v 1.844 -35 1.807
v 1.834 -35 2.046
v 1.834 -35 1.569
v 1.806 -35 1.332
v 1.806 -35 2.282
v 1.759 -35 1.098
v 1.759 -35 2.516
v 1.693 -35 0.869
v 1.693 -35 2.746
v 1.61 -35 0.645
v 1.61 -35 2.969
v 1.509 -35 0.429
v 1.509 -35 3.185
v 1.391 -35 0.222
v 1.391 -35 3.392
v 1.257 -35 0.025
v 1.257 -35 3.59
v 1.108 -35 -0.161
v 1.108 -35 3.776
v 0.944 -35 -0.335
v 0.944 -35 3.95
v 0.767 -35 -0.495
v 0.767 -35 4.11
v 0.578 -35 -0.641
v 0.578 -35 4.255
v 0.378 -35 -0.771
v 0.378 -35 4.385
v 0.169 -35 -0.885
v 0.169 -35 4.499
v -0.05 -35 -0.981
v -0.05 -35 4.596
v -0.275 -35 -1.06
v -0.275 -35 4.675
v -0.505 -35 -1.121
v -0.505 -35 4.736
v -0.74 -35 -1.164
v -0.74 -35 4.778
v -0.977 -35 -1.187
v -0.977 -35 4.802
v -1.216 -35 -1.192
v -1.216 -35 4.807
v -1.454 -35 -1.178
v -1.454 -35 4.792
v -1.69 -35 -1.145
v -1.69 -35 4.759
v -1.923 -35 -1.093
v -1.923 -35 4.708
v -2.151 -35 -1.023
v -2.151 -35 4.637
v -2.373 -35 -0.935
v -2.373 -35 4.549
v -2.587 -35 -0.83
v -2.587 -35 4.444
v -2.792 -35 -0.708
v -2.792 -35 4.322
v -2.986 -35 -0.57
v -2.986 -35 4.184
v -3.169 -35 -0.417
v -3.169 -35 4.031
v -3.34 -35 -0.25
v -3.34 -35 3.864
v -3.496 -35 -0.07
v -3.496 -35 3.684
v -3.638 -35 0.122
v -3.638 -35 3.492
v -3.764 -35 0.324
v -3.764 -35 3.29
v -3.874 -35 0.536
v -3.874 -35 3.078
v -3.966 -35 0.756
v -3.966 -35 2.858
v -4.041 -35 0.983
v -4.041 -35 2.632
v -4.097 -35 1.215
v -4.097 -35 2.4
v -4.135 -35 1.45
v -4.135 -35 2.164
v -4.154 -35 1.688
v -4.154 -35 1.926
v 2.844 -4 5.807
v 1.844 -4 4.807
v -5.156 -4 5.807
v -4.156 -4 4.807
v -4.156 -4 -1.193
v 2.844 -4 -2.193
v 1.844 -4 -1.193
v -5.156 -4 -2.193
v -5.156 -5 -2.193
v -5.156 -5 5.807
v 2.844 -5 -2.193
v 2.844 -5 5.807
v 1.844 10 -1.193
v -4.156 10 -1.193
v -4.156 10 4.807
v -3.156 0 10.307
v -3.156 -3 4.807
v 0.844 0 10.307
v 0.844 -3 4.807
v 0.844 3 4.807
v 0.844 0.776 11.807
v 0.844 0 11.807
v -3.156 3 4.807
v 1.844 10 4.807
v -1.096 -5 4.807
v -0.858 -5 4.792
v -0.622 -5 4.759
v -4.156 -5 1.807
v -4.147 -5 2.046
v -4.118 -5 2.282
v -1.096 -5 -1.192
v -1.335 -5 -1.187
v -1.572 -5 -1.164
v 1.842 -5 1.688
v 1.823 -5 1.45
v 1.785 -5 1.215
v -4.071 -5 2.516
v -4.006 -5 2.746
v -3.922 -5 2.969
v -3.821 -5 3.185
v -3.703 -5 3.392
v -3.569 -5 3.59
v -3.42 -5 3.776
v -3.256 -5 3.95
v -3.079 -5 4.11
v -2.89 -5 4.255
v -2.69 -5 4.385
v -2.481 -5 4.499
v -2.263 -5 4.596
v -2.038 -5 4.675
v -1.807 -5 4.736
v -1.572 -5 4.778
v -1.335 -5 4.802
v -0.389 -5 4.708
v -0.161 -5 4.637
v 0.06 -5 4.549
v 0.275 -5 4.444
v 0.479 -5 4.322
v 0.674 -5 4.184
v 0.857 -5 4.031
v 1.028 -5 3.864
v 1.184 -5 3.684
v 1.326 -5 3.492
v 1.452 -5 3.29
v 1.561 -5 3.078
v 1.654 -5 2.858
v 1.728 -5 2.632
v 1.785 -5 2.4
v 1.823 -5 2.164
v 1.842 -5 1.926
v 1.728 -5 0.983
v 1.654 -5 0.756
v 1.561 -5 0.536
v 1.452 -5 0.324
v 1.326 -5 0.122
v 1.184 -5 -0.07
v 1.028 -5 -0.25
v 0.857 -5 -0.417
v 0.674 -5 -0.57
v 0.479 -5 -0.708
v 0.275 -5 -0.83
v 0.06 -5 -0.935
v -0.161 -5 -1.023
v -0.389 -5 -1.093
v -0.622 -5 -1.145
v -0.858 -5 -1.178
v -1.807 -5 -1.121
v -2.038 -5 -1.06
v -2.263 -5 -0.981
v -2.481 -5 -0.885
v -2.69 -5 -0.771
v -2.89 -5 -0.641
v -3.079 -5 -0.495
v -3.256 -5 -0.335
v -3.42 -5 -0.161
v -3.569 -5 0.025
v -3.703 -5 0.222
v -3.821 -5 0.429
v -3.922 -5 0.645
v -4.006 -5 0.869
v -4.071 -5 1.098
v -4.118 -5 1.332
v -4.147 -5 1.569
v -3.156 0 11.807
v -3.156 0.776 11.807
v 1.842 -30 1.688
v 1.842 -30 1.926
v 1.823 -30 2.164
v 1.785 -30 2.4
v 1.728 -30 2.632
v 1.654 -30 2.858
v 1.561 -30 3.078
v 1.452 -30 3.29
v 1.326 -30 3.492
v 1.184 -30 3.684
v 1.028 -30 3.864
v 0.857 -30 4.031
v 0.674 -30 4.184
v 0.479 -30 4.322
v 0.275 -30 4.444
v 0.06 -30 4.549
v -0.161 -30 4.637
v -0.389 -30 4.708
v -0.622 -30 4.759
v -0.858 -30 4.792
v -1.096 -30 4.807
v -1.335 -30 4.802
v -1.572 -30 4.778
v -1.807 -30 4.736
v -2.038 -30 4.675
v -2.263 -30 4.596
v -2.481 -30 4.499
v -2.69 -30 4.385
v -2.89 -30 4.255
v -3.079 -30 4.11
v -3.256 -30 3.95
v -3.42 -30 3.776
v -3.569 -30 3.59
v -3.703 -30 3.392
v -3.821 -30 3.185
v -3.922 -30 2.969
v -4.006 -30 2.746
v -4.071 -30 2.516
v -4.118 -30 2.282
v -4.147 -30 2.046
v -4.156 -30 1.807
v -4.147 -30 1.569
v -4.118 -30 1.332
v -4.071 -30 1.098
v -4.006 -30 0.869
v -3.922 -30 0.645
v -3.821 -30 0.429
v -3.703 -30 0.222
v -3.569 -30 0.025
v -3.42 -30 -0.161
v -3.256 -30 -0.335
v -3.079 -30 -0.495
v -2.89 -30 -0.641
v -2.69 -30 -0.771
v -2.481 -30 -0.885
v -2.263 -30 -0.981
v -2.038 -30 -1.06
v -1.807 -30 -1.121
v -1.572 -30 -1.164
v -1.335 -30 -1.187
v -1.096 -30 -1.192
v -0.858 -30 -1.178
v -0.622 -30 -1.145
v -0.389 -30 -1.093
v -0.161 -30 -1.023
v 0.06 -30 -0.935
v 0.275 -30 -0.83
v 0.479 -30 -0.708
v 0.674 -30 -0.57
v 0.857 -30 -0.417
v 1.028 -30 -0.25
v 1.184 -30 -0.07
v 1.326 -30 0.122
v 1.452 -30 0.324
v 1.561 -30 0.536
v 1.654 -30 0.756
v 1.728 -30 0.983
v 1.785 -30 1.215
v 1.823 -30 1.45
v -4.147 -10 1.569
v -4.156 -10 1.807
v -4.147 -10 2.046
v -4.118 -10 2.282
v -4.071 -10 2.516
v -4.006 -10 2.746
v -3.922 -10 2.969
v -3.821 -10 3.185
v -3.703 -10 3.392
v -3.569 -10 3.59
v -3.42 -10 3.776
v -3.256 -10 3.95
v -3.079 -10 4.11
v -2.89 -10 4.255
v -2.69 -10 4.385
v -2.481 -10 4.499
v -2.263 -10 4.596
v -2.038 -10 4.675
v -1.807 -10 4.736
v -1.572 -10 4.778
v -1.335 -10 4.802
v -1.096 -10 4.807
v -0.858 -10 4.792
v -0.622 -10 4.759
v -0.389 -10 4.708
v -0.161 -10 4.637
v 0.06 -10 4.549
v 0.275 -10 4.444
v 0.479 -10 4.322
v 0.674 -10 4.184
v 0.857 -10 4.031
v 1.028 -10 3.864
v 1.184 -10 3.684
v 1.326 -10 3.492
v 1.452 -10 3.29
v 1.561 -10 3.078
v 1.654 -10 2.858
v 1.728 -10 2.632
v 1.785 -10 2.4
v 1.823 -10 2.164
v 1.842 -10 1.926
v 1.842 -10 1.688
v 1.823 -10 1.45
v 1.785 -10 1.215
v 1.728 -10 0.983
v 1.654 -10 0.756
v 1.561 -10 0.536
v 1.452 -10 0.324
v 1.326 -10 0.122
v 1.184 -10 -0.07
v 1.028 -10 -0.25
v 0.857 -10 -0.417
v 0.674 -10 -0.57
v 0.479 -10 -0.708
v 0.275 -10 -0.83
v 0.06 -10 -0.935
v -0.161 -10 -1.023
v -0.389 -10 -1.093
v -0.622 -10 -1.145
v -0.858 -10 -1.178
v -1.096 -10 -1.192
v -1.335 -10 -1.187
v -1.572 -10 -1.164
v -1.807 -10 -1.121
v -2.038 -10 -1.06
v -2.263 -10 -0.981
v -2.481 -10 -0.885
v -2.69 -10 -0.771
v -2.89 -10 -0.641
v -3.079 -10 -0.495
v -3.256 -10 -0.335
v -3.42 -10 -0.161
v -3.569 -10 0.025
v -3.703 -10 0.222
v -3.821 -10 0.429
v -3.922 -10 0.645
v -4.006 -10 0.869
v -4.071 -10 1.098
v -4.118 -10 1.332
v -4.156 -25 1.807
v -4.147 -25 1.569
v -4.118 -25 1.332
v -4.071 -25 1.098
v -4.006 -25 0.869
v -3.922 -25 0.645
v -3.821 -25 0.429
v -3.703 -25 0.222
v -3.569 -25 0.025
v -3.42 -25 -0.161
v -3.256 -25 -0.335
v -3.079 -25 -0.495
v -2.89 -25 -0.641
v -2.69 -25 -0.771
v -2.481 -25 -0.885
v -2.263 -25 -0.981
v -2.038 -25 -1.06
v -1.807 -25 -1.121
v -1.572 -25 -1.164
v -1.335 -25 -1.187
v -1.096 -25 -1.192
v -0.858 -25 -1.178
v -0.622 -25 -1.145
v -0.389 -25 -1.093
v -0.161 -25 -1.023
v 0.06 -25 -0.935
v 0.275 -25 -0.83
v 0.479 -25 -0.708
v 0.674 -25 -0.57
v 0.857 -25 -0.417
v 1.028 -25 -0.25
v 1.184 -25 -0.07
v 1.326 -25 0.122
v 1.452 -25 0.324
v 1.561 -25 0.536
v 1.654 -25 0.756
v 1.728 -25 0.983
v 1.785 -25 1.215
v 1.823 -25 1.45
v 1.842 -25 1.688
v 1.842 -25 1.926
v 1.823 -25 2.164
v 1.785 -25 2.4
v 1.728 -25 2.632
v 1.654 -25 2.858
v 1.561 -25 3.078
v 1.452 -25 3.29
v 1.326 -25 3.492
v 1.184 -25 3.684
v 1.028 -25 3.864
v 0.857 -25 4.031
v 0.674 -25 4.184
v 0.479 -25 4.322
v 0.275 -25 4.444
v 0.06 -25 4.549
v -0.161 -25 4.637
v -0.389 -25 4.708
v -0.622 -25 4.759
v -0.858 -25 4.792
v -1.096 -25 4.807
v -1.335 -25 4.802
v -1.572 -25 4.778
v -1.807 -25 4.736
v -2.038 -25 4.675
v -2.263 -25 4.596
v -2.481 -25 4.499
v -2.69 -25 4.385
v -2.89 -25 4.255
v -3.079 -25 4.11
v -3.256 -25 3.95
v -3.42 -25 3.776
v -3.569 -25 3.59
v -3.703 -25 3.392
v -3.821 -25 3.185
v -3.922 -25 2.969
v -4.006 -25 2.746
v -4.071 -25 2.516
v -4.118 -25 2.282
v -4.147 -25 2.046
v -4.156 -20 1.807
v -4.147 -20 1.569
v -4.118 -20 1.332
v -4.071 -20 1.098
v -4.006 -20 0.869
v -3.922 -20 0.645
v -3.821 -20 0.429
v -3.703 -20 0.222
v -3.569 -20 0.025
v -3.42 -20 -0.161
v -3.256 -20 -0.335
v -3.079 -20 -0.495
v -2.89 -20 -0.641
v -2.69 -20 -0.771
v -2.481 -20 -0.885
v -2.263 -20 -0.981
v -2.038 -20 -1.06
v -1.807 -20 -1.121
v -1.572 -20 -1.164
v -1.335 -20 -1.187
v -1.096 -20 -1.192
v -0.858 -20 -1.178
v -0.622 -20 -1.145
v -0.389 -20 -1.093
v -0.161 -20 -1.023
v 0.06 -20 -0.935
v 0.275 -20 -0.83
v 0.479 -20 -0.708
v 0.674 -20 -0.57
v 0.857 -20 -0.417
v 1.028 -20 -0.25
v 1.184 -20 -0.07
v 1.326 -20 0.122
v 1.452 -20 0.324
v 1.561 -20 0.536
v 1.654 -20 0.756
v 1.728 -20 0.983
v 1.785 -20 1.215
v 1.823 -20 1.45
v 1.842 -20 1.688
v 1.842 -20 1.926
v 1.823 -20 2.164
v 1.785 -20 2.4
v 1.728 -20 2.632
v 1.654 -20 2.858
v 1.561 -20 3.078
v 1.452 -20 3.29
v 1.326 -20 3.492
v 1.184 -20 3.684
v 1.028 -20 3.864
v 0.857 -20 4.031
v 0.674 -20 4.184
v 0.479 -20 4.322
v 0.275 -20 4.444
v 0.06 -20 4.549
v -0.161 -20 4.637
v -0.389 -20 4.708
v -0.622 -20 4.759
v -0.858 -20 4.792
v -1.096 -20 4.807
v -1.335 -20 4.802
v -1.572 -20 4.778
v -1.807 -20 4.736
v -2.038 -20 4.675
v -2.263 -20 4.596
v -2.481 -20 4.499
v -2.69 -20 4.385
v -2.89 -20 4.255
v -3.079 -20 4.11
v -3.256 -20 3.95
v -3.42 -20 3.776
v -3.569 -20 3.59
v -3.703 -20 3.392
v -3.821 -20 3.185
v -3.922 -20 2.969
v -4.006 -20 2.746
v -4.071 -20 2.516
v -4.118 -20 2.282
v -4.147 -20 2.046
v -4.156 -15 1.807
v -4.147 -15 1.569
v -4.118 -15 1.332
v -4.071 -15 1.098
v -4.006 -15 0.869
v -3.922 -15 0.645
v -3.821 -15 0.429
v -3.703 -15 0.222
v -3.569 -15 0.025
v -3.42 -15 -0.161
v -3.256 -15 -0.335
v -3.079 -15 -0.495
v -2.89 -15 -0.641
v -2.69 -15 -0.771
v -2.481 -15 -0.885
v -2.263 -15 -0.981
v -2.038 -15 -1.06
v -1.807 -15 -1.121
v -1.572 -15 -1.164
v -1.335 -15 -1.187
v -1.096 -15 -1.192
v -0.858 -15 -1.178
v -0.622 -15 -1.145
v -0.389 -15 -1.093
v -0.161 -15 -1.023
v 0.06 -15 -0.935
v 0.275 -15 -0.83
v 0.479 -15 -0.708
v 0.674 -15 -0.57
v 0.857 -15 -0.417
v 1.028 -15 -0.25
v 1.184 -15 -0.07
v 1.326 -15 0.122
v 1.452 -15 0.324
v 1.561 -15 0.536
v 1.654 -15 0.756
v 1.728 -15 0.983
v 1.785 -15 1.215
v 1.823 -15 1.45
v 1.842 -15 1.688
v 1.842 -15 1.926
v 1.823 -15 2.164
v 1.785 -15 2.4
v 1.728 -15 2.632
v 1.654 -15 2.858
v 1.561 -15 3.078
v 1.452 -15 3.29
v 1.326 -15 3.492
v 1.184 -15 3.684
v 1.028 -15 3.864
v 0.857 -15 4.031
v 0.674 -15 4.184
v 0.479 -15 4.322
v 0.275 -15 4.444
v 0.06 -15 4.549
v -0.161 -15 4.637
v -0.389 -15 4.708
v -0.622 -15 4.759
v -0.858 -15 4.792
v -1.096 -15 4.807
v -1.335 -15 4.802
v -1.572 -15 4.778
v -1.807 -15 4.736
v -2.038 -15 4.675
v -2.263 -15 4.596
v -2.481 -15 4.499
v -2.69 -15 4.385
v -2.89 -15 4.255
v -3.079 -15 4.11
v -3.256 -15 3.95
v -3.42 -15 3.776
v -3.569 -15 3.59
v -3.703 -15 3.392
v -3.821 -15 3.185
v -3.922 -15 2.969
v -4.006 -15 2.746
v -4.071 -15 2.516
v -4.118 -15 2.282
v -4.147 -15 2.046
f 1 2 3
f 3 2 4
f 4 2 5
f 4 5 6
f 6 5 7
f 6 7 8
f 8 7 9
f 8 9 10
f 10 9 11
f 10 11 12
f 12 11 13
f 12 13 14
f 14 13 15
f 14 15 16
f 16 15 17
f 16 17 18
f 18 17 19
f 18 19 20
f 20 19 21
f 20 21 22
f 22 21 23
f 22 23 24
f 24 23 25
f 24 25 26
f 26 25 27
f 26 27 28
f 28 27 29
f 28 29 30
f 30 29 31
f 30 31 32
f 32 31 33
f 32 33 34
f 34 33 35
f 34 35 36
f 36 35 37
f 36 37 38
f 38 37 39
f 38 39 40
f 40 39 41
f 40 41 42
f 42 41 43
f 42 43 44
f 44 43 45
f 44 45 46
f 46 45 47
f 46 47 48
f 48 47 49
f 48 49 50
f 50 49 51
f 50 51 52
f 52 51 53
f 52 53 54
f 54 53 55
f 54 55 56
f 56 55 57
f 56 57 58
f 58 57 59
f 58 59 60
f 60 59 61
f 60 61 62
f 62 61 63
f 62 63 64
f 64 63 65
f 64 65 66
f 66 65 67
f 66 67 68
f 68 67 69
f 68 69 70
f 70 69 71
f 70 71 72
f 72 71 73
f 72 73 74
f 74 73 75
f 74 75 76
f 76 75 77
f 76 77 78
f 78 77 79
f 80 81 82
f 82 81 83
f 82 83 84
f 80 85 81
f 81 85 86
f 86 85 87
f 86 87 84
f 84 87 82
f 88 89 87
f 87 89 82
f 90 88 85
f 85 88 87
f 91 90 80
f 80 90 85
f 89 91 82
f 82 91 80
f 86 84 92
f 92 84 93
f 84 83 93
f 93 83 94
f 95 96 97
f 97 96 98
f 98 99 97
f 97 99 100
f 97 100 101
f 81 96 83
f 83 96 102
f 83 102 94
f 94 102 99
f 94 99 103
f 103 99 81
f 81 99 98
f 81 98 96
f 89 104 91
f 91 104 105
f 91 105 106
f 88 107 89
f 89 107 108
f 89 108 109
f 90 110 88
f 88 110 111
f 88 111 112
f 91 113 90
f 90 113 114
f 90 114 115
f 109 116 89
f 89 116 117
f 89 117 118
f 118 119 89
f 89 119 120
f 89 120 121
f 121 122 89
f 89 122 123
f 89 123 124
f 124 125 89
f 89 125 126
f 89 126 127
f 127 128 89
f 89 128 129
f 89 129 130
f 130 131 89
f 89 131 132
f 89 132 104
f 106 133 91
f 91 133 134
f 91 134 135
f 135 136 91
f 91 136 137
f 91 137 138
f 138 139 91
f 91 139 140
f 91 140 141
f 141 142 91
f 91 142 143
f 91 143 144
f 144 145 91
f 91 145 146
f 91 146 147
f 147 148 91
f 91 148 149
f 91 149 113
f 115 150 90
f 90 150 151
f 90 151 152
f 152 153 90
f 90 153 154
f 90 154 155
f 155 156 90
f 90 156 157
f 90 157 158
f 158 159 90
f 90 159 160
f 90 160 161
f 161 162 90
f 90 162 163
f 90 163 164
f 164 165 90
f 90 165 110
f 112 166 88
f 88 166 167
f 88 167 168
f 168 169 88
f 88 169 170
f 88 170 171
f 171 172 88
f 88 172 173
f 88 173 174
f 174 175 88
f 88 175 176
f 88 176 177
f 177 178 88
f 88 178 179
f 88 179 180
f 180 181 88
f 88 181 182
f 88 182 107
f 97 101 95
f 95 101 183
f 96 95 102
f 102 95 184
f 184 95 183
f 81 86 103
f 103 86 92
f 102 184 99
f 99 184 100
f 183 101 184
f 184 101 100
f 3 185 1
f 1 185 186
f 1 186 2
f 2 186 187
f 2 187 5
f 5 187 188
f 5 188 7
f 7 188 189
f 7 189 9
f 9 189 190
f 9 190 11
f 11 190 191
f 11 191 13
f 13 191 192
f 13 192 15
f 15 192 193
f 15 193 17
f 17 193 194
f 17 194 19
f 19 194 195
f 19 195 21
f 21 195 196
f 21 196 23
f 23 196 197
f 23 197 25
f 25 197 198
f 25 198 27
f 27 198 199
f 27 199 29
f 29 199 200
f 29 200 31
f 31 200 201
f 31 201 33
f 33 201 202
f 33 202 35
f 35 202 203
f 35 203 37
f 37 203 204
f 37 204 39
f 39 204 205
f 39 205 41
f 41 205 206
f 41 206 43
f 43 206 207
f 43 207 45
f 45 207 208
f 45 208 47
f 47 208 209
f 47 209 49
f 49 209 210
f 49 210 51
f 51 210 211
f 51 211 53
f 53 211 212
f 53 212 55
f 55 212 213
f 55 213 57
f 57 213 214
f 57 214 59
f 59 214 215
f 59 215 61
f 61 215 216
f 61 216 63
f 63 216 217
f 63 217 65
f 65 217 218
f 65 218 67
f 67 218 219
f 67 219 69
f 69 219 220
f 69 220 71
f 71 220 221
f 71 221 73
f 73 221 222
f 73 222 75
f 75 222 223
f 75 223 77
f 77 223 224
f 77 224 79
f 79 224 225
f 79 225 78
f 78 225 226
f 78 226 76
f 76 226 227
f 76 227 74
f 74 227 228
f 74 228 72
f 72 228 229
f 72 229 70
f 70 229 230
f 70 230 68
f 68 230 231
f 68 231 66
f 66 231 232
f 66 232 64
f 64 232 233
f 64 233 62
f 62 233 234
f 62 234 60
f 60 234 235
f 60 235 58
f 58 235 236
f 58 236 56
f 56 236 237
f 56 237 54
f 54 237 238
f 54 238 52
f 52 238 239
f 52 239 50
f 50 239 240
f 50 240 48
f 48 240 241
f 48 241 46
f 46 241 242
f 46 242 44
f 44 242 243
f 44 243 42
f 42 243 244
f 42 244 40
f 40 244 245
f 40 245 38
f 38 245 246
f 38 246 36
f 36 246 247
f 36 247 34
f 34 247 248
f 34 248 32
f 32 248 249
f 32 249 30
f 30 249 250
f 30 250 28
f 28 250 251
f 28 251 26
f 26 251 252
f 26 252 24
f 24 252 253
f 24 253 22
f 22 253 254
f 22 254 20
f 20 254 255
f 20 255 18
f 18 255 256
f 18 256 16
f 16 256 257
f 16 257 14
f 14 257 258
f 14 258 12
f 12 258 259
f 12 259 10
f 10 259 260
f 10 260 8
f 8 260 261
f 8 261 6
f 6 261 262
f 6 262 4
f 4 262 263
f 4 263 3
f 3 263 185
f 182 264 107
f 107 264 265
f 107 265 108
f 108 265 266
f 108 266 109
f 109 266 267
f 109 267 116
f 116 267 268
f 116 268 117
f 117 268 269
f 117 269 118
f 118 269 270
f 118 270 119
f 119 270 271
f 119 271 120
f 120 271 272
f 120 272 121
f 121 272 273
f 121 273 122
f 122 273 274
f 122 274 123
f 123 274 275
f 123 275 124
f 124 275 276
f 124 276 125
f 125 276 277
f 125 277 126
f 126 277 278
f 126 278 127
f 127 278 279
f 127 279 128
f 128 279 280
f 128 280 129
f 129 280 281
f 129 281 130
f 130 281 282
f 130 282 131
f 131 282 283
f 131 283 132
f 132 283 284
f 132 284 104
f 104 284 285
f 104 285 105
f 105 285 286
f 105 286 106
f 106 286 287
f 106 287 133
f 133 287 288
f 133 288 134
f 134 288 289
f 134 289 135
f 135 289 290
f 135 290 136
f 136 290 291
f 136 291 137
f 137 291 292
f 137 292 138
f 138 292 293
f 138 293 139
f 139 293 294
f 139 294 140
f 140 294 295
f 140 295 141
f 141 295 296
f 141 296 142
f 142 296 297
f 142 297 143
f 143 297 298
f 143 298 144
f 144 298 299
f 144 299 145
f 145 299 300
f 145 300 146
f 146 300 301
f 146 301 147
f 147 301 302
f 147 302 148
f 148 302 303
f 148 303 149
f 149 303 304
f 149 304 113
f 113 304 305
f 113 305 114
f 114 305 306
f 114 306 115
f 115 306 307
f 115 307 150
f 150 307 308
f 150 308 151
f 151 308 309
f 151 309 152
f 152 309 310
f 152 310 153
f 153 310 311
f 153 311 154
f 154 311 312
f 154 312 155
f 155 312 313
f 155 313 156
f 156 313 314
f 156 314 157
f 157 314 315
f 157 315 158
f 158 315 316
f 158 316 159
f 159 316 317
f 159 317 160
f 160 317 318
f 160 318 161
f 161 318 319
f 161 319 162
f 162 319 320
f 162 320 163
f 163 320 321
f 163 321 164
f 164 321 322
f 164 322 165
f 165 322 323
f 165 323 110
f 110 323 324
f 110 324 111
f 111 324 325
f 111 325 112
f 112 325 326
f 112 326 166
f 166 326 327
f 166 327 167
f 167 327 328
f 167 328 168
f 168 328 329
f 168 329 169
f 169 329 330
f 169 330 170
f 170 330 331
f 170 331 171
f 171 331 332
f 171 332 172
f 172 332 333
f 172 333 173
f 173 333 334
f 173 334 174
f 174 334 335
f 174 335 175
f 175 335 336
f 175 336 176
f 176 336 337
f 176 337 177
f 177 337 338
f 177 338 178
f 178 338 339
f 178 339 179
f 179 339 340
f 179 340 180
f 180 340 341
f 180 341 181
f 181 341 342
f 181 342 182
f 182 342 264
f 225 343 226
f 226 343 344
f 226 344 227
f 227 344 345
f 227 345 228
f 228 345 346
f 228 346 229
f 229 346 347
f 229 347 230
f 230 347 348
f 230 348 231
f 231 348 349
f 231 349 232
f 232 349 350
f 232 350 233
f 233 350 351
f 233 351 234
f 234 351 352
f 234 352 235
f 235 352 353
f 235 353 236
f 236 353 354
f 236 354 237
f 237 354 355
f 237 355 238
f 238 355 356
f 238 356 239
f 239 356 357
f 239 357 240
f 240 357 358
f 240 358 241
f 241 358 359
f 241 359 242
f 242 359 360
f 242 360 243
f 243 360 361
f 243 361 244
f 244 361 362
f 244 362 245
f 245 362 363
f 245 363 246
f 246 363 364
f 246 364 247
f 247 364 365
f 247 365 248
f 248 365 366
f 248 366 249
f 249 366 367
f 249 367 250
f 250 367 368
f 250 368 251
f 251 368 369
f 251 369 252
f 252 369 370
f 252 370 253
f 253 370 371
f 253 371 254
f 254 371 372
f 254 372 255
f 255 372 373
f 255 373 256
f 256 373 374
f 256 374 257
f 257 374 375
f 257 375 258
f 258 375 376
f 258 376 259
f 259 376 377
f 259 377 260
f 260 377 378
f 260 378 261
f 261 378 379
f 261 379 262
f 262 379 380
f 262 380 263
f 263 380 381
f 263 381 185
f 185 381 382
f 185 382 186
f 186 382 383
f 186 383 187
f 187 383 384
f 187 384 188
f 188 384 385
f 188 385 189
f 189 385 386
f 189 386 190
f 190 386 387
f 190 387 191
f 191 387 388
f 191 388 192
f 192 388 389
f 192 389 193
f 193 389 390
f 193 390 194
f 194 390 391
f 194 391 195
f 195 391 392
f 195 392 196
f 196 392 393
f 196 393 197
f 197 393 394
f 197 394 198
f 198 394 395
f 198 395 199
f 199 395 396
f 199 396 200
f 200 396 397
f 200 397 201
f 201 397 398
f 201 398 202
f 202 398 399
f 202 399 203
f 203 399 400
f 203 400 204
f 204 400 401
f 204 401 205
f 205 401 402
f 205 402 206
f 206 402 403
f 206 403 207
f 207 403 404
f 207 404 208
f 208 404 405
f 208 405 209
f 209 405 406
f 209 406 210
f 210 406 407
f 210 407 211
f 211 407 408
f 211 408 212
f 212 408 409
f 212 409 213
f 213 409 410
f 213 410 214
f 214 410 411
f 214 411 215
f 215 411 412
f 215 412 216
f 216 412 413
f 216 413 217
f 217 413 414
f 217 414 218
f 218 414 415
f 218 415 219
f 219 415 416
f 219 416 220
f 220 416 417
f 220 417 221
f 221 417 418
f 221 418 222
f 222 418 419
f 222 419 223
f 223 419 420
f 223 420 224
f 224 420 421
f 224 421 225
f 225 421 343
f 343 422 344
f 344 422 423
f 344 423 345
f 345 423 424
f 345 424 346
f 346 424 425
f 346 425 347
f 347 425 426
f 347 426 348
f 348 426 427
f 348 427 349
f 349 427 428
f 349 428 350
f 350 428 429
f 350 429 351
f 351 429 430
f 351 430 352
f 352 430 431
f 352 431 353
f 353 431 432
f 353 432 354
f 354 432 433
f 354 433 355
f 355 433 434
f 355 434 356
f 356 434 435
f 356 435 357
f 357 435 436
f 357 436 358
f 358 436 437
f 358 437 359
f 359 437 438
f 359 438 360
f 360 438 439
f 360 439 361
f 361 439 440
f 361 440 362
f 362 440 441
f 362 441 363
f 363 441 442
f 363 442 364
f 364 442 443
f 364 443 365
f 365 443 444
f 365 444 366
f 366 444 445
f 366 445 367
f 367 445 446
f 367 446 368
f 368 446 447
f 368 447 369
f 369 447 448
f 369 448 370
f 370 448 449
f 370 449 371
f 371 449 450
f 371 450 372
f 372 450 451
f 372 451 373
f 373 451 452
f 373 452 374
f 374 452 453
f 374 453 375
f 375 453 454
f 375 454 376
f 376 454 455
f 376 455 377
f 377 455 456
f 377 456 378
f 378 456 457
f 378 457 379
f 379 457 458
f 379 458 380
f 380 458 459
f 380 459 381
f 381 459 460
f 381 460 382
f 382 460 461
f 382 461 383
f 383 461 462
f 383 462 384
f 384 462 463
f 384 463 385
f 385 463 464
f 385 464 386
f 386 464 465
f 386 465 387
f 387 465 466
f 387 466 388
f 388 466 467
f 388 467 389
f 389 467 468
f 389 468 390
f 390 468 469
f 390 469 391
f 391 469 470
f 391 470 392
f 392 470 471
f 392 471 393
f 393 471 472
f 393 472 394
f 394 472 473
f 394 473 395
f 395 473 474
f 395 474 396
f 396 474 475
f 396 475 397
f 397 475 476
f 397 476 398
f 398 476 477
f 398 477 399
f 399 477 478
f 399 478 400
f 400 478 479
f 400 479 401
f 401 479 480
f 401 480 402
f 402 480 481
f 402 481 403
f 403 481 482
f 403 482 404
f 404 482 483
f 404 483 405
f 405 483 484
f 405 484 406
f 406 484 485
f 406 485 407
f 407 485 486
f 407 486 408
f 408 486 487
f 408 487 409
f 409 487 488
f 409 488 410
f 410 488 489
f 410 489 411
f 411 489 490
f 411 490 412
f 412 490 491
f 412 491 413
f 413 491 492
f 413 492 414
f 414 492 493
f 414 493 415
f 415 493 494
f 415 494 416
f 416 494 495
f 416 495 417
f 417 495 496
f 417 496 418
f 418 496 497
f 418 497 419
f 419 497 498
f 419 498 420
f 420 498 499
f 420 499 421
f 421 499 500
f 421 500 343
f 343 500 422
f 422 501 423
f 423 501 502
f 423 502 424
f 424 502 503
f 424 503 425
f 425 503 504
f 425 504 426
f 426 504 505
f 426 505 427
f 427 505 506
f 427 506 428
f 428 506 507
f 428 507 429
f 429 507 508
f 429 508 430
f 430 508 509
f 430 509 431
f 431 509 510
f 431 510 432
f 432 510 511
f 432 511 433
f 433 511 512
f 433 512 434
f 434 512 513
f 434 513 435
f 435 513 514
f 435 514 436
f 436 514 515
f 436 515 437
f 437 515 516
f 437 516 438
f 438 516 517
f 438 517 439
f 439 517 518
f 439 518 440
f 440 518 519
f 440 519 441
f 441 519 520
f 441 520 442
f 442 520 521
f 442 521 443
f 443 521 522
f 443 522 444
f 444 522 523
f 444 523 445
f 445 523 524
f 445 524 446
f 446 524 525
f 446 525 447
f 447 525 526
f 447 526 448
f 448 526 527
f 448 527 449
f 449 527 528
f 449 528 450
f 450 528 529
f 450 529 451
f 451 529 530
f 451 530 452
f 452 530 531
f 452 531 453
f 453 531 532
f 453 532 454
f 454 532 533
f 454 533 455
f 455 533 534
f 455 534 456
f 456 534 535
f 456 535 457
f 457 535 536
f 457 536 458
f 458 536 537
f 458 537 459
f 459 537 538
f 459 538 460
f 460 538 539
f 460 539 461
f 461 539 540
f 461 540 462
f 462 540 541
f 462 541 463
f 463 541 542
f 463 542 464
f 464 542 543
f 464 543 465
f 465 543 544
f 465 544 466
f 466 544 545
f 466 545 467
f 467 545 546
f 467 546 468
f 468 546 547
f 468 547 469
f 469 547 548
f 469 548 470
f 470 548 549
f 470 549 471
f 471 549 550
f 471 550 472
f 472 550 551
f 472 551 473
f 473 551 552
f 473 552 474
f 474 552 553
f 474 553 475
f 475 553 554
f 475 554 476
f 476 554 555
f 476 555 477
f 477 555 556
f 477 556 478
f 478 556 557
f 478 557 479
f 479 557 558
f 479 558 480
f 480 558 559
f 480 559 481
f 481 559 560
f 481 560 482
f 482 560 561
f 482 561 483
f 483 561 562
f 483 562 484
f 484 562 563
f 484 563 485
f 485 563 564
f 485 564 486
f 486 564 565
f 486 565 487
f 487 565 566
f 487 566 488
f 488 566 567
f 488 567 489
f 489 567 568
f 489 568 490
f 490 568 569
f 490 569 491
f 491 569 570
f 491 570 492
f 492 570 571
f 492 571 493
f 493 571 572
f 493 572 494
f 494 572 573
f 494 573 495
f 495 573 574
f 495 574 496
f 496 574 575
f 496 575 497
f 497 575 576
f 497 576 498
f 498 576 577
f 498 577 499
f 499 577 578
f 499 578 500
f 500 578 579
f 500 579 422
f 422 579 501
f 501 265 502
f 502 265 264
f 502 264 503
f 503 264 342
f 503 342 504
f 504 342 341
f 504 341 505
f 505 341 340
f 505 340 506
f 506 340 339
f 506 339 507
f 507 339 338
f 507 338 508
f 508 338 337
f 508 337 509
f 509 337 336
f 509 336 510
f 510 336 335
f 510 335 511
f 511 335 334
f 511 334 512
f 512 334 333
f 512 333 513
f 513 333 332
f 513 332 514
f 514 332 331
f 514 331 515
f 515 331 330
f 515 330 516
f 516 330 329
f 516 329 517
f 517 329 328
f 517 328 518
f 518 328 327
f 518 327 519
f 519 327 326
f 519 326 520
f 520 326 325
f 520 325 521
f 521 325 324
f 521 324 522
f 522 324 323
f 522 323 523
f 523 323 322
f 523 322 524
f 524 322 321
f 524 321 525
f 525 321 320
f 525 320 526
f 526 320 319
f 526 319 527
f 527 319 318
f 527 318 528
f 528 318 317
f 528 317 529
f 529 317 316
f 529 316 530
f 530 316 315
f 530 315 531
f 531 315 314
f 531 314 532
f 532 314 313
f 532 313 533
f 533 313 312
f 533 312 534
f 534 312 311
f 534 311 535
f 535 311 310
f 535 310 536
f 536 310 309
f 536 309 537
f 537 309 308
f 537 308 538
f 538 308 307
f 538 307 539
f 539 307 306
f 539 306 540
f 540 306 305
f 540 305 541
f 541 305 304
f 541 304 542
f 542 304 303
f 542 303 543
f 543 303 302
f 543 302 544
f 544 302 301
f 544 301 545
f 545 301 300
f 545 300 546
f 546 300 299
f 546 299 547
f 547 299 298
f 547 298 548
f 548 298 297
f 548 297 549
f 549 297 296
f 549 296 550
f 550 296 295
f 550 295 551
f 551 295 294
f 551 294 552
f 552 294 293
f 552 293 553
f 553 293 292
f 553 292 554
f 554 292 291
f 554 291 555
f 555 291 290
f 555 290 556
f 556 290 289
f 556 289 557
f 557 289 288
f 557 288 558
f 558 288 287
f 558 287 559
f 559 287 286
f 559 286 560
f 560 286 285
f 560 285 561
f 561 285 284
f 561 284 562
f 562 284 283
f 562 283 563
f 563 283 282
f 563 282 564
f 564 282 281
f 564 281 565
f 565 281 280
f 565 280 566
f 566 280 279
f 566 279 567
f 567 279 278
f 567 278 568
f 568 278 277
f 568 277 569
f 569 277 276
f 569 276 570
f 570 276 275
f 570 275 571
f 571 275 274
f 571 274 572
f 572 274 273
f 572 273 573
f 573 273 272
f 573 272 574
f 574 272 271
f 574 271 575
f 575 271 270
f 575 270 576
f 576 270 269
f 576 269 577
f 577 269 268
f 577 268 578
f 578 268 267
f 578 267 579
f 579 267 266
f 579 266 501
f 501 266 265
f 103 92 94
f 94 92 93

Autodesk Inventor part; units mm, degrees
ref_plane "YZ Plane" through (0, 0, 0) normal (1, 0, 0) x (0, 1, 0)
ref_plane "XZ Plane" through (0, 0, 0) normal (0, 1, 0) x (-1, 0, 0)
ref_plane "XY Plane" through (0, 0, 0) normal (0, 0, 1) x (1, 0, 0)
sketch "Sketch1" plane through (0, 0, 0) normal (0, 1, 0) x (-1, 0, 0)
  circle A0 centre (1.1561, 1.8072) radius 3
  line L0 (4.1561, 4.8072) -> (-1.8439, 4.8072)
  line L1 (-1.8439, 4.8072) -> (-1.8439, -1.1928)
  line L2 (-1.8439, -1.1928) -> (4.1561, -1.1928)
  line L3 (4.1561, -1.1928) -> (4.1561, 4.8072)
  point P0 (0, 0)
  dimension "d0" = 6
extrude "Extrusion1" add sketch "Sketch1" along normal blind 10
extrude "Extrusion2" add sketch "Sketch1" against normal blind 20 contours A0
sketch "Sketch2" plane through (-4.1561, 10, 4.8072) normal (0, 0, 1) x (1, 0, 0)
  line L0 (0, -10) -> (0, 0) projected
  line L1 (6, -10) -> (0, -10)
  line L2 (0, -10) -> (0, -7)
  line L3 (0, -7) -> (6, -7)
  line L4 (6, -7) -> (6, -10)
  line L5 (0, 0) -> (6, 0) projected
  line L6 (0, -30) -> (6, -30) projected
  line L7 (3, -10) -> (6, -10) projected
  point P0 (4.1561, -10)
  dimension "d5" = 3
  dimension "d6" = 6
  dimension "d7" = 30
  dimension "d13" = 0
extrude "Extrusion3" add sketch "Sketch2" along normal blind 7
sketch "Sketch3" plane through (-4.1561, 0, -1.1928) normal (-1, 0, 0) x (0, 0, 1)
  line L0 (6, 3) -> (13, 3) projected
  line L1 (13, 3) -> (13, 0) projected
  arc A0 (9.5, 3) -> (13, 1.5) centre (12.6357, 5.4834) ccw
  point P0 (1.1928, 0)
  dimension "d10" = 4
extrude "Extrusion4" [suppressed]
fillet "Fillet1" [suppressed]
fillet "Fillet2" [suppressed]
fillet "Fillet3" [suppressed]
sketch "Sketch4" plane through (1.8439, 0, -1.1928) normal (1, 0, 0) x (0, 0, -1)
  line L0 (-6, 3) -> (-13, 3) projected
  line L1 (-6, 3) -> (-13, 0.7757)
  line L2 (-13, 3) -> (-13, 0) projected
  line L3 (-13, 0.7757) -> (-13, 3)
  line L4 (-6, 3) -> (-13, 3) projected
  line L5 (-13, 3) -> (-6, 3)
  point P0 (-1.1928, 0)
extrude "Extrusion5" cut sketch "Sketch4" against normal blind 10
sketch "Sketch5" plane through (0, 0, 0) normal (0, -1, 0) x (1, 0, 0)
  line L0 (-4.1561, 4.8072) -> (1.8439, 4.8072) projected
  line L1 (-4.1561, 11.8072) -> (1.8439, 11.8072) projected
  line L2 (1.8439, 4.8072) -> (0.8439, 4.8072)
  line L3 (0.8439, 4.8072) -> (0.8439, 11.8072)
  line L4 (0.8439, 11.8072) -> (1.8439, 11.8072)
  line L5 (1.8439, 11.8072) -> (1.8439, 4.8072)
  line L6 (-3.1561, 4.8072) -> (-4.1561, 4.8072)
  line L7 (-4.1561, 4.8072) -> (-4.1561, 11.8072)
  line L8 (-4.1561, 11.8072) -> (-3.1561, 11.8072)
  line L9 (-3.1561, 11.8072) -> (-3.1561, 4.8072)
  line L10 (-3.1561, 10.3072) -> (0.8439, 10.3072)
  point P0 (0, 0)
  dimension "d19" = 6
  dimension "d20" = 1
  dimension "d21" = 1
  dimension "d28" = 1.5
extrude "Extrusion6" cut sketch "Sketch5" against normal blind 10 contours L3 L1 L5 L0
extrude "Extrusion7" cut sketch "Sketch5" against normal blind 10 contours L7 L1 L9 L0
extrude "Extrusion8" add sketch "Sketch1" against normal blind 5 contours L3 L2 A0 | A0 L0 L3 | A0 L1 L0 | L2 L1 A0
sketch "Sketch6" plane through (0.8439, 0, 11.8072) normal (1, 0, 0) x (0, 0, -1)
  point P0 (11.8072, 0)
sketch "Sketch7" plane through (0.8439, 0, 11.8072) normal (1, 0, 0) x (0, 0, -1)
  point P0 (11.8072, 0)
extrude "Extrusion9" add sketch "Sketch5" along normal blind 3 contours L9 L10 L3 L0
sketch "Sketch9" plane through (0.8439, 0, 11.8072) normal (1, 0, 0) x (0, 0, -1)
  line L0 (7, -3) -> (1.5, 0)
  line L1 (1.5, 0) -> (7, 0)
  line L2 (7, -3) -> (7, 3) projected
  line L3 (1.5, 0) -> (1.5, -3) projected
  line L4 (1.5, -3) -> (7, -3)
  point P0 (11.8072, 0)
extrude "Extrusion10" cut sketch "Sketch9" against normal blind 5 contours L4 L3 L0
sketch "Sketch10" plane through (0, -5, 0) normal (0, -1, 0) x (1, 0, 0)
  line L0 (2.8439, 5.8072) -> (-5.1561, 5.8072)
  line L1 (-5.1561, 5.8072) -> (-5.1561, -2.1928)
  line L2 (-5.1561, -2.1928) -> (2.8439, -2.1928)
  line L3 (2.8439, -2.1928) -> (2.8439, 5.8072)
  line L4 (1.8439, 1.8072) -> (1.8439, 4.8072) projected
  line L5 (-1.1561, -1.1928) -> (1.8439, -1.1928) projected
  line L6 (1.8439, 4.8072) -> (-1.1561, 4.8072) projected
  line L7 (-4.1561, 4.8072) -> (-4.1561, 1.8072) projected
  point P0 (0, 0)
  dimension "d33" = 1
  dimension "d34" = 1
  dimension "d35" = 1
  dimension "d36" = 1
extrude "Extrusion11" add sketch "Sketch10" against normal blind 1
sketch "Sketch11" plane through (-1.1561, -20, 1.8072) normal (0, -1, 0) x (1, 0, 0)
  circle A0 centre (0, 0) radius 3
  circle A1 centre (0, 0) radius 3 projected
  point P0 (1.1561, -1.8072)
  dimension "d39" = 6
extrude "Extrusion12" add sketch "Sketch11" along normal blind 15
properties part number "pin"
